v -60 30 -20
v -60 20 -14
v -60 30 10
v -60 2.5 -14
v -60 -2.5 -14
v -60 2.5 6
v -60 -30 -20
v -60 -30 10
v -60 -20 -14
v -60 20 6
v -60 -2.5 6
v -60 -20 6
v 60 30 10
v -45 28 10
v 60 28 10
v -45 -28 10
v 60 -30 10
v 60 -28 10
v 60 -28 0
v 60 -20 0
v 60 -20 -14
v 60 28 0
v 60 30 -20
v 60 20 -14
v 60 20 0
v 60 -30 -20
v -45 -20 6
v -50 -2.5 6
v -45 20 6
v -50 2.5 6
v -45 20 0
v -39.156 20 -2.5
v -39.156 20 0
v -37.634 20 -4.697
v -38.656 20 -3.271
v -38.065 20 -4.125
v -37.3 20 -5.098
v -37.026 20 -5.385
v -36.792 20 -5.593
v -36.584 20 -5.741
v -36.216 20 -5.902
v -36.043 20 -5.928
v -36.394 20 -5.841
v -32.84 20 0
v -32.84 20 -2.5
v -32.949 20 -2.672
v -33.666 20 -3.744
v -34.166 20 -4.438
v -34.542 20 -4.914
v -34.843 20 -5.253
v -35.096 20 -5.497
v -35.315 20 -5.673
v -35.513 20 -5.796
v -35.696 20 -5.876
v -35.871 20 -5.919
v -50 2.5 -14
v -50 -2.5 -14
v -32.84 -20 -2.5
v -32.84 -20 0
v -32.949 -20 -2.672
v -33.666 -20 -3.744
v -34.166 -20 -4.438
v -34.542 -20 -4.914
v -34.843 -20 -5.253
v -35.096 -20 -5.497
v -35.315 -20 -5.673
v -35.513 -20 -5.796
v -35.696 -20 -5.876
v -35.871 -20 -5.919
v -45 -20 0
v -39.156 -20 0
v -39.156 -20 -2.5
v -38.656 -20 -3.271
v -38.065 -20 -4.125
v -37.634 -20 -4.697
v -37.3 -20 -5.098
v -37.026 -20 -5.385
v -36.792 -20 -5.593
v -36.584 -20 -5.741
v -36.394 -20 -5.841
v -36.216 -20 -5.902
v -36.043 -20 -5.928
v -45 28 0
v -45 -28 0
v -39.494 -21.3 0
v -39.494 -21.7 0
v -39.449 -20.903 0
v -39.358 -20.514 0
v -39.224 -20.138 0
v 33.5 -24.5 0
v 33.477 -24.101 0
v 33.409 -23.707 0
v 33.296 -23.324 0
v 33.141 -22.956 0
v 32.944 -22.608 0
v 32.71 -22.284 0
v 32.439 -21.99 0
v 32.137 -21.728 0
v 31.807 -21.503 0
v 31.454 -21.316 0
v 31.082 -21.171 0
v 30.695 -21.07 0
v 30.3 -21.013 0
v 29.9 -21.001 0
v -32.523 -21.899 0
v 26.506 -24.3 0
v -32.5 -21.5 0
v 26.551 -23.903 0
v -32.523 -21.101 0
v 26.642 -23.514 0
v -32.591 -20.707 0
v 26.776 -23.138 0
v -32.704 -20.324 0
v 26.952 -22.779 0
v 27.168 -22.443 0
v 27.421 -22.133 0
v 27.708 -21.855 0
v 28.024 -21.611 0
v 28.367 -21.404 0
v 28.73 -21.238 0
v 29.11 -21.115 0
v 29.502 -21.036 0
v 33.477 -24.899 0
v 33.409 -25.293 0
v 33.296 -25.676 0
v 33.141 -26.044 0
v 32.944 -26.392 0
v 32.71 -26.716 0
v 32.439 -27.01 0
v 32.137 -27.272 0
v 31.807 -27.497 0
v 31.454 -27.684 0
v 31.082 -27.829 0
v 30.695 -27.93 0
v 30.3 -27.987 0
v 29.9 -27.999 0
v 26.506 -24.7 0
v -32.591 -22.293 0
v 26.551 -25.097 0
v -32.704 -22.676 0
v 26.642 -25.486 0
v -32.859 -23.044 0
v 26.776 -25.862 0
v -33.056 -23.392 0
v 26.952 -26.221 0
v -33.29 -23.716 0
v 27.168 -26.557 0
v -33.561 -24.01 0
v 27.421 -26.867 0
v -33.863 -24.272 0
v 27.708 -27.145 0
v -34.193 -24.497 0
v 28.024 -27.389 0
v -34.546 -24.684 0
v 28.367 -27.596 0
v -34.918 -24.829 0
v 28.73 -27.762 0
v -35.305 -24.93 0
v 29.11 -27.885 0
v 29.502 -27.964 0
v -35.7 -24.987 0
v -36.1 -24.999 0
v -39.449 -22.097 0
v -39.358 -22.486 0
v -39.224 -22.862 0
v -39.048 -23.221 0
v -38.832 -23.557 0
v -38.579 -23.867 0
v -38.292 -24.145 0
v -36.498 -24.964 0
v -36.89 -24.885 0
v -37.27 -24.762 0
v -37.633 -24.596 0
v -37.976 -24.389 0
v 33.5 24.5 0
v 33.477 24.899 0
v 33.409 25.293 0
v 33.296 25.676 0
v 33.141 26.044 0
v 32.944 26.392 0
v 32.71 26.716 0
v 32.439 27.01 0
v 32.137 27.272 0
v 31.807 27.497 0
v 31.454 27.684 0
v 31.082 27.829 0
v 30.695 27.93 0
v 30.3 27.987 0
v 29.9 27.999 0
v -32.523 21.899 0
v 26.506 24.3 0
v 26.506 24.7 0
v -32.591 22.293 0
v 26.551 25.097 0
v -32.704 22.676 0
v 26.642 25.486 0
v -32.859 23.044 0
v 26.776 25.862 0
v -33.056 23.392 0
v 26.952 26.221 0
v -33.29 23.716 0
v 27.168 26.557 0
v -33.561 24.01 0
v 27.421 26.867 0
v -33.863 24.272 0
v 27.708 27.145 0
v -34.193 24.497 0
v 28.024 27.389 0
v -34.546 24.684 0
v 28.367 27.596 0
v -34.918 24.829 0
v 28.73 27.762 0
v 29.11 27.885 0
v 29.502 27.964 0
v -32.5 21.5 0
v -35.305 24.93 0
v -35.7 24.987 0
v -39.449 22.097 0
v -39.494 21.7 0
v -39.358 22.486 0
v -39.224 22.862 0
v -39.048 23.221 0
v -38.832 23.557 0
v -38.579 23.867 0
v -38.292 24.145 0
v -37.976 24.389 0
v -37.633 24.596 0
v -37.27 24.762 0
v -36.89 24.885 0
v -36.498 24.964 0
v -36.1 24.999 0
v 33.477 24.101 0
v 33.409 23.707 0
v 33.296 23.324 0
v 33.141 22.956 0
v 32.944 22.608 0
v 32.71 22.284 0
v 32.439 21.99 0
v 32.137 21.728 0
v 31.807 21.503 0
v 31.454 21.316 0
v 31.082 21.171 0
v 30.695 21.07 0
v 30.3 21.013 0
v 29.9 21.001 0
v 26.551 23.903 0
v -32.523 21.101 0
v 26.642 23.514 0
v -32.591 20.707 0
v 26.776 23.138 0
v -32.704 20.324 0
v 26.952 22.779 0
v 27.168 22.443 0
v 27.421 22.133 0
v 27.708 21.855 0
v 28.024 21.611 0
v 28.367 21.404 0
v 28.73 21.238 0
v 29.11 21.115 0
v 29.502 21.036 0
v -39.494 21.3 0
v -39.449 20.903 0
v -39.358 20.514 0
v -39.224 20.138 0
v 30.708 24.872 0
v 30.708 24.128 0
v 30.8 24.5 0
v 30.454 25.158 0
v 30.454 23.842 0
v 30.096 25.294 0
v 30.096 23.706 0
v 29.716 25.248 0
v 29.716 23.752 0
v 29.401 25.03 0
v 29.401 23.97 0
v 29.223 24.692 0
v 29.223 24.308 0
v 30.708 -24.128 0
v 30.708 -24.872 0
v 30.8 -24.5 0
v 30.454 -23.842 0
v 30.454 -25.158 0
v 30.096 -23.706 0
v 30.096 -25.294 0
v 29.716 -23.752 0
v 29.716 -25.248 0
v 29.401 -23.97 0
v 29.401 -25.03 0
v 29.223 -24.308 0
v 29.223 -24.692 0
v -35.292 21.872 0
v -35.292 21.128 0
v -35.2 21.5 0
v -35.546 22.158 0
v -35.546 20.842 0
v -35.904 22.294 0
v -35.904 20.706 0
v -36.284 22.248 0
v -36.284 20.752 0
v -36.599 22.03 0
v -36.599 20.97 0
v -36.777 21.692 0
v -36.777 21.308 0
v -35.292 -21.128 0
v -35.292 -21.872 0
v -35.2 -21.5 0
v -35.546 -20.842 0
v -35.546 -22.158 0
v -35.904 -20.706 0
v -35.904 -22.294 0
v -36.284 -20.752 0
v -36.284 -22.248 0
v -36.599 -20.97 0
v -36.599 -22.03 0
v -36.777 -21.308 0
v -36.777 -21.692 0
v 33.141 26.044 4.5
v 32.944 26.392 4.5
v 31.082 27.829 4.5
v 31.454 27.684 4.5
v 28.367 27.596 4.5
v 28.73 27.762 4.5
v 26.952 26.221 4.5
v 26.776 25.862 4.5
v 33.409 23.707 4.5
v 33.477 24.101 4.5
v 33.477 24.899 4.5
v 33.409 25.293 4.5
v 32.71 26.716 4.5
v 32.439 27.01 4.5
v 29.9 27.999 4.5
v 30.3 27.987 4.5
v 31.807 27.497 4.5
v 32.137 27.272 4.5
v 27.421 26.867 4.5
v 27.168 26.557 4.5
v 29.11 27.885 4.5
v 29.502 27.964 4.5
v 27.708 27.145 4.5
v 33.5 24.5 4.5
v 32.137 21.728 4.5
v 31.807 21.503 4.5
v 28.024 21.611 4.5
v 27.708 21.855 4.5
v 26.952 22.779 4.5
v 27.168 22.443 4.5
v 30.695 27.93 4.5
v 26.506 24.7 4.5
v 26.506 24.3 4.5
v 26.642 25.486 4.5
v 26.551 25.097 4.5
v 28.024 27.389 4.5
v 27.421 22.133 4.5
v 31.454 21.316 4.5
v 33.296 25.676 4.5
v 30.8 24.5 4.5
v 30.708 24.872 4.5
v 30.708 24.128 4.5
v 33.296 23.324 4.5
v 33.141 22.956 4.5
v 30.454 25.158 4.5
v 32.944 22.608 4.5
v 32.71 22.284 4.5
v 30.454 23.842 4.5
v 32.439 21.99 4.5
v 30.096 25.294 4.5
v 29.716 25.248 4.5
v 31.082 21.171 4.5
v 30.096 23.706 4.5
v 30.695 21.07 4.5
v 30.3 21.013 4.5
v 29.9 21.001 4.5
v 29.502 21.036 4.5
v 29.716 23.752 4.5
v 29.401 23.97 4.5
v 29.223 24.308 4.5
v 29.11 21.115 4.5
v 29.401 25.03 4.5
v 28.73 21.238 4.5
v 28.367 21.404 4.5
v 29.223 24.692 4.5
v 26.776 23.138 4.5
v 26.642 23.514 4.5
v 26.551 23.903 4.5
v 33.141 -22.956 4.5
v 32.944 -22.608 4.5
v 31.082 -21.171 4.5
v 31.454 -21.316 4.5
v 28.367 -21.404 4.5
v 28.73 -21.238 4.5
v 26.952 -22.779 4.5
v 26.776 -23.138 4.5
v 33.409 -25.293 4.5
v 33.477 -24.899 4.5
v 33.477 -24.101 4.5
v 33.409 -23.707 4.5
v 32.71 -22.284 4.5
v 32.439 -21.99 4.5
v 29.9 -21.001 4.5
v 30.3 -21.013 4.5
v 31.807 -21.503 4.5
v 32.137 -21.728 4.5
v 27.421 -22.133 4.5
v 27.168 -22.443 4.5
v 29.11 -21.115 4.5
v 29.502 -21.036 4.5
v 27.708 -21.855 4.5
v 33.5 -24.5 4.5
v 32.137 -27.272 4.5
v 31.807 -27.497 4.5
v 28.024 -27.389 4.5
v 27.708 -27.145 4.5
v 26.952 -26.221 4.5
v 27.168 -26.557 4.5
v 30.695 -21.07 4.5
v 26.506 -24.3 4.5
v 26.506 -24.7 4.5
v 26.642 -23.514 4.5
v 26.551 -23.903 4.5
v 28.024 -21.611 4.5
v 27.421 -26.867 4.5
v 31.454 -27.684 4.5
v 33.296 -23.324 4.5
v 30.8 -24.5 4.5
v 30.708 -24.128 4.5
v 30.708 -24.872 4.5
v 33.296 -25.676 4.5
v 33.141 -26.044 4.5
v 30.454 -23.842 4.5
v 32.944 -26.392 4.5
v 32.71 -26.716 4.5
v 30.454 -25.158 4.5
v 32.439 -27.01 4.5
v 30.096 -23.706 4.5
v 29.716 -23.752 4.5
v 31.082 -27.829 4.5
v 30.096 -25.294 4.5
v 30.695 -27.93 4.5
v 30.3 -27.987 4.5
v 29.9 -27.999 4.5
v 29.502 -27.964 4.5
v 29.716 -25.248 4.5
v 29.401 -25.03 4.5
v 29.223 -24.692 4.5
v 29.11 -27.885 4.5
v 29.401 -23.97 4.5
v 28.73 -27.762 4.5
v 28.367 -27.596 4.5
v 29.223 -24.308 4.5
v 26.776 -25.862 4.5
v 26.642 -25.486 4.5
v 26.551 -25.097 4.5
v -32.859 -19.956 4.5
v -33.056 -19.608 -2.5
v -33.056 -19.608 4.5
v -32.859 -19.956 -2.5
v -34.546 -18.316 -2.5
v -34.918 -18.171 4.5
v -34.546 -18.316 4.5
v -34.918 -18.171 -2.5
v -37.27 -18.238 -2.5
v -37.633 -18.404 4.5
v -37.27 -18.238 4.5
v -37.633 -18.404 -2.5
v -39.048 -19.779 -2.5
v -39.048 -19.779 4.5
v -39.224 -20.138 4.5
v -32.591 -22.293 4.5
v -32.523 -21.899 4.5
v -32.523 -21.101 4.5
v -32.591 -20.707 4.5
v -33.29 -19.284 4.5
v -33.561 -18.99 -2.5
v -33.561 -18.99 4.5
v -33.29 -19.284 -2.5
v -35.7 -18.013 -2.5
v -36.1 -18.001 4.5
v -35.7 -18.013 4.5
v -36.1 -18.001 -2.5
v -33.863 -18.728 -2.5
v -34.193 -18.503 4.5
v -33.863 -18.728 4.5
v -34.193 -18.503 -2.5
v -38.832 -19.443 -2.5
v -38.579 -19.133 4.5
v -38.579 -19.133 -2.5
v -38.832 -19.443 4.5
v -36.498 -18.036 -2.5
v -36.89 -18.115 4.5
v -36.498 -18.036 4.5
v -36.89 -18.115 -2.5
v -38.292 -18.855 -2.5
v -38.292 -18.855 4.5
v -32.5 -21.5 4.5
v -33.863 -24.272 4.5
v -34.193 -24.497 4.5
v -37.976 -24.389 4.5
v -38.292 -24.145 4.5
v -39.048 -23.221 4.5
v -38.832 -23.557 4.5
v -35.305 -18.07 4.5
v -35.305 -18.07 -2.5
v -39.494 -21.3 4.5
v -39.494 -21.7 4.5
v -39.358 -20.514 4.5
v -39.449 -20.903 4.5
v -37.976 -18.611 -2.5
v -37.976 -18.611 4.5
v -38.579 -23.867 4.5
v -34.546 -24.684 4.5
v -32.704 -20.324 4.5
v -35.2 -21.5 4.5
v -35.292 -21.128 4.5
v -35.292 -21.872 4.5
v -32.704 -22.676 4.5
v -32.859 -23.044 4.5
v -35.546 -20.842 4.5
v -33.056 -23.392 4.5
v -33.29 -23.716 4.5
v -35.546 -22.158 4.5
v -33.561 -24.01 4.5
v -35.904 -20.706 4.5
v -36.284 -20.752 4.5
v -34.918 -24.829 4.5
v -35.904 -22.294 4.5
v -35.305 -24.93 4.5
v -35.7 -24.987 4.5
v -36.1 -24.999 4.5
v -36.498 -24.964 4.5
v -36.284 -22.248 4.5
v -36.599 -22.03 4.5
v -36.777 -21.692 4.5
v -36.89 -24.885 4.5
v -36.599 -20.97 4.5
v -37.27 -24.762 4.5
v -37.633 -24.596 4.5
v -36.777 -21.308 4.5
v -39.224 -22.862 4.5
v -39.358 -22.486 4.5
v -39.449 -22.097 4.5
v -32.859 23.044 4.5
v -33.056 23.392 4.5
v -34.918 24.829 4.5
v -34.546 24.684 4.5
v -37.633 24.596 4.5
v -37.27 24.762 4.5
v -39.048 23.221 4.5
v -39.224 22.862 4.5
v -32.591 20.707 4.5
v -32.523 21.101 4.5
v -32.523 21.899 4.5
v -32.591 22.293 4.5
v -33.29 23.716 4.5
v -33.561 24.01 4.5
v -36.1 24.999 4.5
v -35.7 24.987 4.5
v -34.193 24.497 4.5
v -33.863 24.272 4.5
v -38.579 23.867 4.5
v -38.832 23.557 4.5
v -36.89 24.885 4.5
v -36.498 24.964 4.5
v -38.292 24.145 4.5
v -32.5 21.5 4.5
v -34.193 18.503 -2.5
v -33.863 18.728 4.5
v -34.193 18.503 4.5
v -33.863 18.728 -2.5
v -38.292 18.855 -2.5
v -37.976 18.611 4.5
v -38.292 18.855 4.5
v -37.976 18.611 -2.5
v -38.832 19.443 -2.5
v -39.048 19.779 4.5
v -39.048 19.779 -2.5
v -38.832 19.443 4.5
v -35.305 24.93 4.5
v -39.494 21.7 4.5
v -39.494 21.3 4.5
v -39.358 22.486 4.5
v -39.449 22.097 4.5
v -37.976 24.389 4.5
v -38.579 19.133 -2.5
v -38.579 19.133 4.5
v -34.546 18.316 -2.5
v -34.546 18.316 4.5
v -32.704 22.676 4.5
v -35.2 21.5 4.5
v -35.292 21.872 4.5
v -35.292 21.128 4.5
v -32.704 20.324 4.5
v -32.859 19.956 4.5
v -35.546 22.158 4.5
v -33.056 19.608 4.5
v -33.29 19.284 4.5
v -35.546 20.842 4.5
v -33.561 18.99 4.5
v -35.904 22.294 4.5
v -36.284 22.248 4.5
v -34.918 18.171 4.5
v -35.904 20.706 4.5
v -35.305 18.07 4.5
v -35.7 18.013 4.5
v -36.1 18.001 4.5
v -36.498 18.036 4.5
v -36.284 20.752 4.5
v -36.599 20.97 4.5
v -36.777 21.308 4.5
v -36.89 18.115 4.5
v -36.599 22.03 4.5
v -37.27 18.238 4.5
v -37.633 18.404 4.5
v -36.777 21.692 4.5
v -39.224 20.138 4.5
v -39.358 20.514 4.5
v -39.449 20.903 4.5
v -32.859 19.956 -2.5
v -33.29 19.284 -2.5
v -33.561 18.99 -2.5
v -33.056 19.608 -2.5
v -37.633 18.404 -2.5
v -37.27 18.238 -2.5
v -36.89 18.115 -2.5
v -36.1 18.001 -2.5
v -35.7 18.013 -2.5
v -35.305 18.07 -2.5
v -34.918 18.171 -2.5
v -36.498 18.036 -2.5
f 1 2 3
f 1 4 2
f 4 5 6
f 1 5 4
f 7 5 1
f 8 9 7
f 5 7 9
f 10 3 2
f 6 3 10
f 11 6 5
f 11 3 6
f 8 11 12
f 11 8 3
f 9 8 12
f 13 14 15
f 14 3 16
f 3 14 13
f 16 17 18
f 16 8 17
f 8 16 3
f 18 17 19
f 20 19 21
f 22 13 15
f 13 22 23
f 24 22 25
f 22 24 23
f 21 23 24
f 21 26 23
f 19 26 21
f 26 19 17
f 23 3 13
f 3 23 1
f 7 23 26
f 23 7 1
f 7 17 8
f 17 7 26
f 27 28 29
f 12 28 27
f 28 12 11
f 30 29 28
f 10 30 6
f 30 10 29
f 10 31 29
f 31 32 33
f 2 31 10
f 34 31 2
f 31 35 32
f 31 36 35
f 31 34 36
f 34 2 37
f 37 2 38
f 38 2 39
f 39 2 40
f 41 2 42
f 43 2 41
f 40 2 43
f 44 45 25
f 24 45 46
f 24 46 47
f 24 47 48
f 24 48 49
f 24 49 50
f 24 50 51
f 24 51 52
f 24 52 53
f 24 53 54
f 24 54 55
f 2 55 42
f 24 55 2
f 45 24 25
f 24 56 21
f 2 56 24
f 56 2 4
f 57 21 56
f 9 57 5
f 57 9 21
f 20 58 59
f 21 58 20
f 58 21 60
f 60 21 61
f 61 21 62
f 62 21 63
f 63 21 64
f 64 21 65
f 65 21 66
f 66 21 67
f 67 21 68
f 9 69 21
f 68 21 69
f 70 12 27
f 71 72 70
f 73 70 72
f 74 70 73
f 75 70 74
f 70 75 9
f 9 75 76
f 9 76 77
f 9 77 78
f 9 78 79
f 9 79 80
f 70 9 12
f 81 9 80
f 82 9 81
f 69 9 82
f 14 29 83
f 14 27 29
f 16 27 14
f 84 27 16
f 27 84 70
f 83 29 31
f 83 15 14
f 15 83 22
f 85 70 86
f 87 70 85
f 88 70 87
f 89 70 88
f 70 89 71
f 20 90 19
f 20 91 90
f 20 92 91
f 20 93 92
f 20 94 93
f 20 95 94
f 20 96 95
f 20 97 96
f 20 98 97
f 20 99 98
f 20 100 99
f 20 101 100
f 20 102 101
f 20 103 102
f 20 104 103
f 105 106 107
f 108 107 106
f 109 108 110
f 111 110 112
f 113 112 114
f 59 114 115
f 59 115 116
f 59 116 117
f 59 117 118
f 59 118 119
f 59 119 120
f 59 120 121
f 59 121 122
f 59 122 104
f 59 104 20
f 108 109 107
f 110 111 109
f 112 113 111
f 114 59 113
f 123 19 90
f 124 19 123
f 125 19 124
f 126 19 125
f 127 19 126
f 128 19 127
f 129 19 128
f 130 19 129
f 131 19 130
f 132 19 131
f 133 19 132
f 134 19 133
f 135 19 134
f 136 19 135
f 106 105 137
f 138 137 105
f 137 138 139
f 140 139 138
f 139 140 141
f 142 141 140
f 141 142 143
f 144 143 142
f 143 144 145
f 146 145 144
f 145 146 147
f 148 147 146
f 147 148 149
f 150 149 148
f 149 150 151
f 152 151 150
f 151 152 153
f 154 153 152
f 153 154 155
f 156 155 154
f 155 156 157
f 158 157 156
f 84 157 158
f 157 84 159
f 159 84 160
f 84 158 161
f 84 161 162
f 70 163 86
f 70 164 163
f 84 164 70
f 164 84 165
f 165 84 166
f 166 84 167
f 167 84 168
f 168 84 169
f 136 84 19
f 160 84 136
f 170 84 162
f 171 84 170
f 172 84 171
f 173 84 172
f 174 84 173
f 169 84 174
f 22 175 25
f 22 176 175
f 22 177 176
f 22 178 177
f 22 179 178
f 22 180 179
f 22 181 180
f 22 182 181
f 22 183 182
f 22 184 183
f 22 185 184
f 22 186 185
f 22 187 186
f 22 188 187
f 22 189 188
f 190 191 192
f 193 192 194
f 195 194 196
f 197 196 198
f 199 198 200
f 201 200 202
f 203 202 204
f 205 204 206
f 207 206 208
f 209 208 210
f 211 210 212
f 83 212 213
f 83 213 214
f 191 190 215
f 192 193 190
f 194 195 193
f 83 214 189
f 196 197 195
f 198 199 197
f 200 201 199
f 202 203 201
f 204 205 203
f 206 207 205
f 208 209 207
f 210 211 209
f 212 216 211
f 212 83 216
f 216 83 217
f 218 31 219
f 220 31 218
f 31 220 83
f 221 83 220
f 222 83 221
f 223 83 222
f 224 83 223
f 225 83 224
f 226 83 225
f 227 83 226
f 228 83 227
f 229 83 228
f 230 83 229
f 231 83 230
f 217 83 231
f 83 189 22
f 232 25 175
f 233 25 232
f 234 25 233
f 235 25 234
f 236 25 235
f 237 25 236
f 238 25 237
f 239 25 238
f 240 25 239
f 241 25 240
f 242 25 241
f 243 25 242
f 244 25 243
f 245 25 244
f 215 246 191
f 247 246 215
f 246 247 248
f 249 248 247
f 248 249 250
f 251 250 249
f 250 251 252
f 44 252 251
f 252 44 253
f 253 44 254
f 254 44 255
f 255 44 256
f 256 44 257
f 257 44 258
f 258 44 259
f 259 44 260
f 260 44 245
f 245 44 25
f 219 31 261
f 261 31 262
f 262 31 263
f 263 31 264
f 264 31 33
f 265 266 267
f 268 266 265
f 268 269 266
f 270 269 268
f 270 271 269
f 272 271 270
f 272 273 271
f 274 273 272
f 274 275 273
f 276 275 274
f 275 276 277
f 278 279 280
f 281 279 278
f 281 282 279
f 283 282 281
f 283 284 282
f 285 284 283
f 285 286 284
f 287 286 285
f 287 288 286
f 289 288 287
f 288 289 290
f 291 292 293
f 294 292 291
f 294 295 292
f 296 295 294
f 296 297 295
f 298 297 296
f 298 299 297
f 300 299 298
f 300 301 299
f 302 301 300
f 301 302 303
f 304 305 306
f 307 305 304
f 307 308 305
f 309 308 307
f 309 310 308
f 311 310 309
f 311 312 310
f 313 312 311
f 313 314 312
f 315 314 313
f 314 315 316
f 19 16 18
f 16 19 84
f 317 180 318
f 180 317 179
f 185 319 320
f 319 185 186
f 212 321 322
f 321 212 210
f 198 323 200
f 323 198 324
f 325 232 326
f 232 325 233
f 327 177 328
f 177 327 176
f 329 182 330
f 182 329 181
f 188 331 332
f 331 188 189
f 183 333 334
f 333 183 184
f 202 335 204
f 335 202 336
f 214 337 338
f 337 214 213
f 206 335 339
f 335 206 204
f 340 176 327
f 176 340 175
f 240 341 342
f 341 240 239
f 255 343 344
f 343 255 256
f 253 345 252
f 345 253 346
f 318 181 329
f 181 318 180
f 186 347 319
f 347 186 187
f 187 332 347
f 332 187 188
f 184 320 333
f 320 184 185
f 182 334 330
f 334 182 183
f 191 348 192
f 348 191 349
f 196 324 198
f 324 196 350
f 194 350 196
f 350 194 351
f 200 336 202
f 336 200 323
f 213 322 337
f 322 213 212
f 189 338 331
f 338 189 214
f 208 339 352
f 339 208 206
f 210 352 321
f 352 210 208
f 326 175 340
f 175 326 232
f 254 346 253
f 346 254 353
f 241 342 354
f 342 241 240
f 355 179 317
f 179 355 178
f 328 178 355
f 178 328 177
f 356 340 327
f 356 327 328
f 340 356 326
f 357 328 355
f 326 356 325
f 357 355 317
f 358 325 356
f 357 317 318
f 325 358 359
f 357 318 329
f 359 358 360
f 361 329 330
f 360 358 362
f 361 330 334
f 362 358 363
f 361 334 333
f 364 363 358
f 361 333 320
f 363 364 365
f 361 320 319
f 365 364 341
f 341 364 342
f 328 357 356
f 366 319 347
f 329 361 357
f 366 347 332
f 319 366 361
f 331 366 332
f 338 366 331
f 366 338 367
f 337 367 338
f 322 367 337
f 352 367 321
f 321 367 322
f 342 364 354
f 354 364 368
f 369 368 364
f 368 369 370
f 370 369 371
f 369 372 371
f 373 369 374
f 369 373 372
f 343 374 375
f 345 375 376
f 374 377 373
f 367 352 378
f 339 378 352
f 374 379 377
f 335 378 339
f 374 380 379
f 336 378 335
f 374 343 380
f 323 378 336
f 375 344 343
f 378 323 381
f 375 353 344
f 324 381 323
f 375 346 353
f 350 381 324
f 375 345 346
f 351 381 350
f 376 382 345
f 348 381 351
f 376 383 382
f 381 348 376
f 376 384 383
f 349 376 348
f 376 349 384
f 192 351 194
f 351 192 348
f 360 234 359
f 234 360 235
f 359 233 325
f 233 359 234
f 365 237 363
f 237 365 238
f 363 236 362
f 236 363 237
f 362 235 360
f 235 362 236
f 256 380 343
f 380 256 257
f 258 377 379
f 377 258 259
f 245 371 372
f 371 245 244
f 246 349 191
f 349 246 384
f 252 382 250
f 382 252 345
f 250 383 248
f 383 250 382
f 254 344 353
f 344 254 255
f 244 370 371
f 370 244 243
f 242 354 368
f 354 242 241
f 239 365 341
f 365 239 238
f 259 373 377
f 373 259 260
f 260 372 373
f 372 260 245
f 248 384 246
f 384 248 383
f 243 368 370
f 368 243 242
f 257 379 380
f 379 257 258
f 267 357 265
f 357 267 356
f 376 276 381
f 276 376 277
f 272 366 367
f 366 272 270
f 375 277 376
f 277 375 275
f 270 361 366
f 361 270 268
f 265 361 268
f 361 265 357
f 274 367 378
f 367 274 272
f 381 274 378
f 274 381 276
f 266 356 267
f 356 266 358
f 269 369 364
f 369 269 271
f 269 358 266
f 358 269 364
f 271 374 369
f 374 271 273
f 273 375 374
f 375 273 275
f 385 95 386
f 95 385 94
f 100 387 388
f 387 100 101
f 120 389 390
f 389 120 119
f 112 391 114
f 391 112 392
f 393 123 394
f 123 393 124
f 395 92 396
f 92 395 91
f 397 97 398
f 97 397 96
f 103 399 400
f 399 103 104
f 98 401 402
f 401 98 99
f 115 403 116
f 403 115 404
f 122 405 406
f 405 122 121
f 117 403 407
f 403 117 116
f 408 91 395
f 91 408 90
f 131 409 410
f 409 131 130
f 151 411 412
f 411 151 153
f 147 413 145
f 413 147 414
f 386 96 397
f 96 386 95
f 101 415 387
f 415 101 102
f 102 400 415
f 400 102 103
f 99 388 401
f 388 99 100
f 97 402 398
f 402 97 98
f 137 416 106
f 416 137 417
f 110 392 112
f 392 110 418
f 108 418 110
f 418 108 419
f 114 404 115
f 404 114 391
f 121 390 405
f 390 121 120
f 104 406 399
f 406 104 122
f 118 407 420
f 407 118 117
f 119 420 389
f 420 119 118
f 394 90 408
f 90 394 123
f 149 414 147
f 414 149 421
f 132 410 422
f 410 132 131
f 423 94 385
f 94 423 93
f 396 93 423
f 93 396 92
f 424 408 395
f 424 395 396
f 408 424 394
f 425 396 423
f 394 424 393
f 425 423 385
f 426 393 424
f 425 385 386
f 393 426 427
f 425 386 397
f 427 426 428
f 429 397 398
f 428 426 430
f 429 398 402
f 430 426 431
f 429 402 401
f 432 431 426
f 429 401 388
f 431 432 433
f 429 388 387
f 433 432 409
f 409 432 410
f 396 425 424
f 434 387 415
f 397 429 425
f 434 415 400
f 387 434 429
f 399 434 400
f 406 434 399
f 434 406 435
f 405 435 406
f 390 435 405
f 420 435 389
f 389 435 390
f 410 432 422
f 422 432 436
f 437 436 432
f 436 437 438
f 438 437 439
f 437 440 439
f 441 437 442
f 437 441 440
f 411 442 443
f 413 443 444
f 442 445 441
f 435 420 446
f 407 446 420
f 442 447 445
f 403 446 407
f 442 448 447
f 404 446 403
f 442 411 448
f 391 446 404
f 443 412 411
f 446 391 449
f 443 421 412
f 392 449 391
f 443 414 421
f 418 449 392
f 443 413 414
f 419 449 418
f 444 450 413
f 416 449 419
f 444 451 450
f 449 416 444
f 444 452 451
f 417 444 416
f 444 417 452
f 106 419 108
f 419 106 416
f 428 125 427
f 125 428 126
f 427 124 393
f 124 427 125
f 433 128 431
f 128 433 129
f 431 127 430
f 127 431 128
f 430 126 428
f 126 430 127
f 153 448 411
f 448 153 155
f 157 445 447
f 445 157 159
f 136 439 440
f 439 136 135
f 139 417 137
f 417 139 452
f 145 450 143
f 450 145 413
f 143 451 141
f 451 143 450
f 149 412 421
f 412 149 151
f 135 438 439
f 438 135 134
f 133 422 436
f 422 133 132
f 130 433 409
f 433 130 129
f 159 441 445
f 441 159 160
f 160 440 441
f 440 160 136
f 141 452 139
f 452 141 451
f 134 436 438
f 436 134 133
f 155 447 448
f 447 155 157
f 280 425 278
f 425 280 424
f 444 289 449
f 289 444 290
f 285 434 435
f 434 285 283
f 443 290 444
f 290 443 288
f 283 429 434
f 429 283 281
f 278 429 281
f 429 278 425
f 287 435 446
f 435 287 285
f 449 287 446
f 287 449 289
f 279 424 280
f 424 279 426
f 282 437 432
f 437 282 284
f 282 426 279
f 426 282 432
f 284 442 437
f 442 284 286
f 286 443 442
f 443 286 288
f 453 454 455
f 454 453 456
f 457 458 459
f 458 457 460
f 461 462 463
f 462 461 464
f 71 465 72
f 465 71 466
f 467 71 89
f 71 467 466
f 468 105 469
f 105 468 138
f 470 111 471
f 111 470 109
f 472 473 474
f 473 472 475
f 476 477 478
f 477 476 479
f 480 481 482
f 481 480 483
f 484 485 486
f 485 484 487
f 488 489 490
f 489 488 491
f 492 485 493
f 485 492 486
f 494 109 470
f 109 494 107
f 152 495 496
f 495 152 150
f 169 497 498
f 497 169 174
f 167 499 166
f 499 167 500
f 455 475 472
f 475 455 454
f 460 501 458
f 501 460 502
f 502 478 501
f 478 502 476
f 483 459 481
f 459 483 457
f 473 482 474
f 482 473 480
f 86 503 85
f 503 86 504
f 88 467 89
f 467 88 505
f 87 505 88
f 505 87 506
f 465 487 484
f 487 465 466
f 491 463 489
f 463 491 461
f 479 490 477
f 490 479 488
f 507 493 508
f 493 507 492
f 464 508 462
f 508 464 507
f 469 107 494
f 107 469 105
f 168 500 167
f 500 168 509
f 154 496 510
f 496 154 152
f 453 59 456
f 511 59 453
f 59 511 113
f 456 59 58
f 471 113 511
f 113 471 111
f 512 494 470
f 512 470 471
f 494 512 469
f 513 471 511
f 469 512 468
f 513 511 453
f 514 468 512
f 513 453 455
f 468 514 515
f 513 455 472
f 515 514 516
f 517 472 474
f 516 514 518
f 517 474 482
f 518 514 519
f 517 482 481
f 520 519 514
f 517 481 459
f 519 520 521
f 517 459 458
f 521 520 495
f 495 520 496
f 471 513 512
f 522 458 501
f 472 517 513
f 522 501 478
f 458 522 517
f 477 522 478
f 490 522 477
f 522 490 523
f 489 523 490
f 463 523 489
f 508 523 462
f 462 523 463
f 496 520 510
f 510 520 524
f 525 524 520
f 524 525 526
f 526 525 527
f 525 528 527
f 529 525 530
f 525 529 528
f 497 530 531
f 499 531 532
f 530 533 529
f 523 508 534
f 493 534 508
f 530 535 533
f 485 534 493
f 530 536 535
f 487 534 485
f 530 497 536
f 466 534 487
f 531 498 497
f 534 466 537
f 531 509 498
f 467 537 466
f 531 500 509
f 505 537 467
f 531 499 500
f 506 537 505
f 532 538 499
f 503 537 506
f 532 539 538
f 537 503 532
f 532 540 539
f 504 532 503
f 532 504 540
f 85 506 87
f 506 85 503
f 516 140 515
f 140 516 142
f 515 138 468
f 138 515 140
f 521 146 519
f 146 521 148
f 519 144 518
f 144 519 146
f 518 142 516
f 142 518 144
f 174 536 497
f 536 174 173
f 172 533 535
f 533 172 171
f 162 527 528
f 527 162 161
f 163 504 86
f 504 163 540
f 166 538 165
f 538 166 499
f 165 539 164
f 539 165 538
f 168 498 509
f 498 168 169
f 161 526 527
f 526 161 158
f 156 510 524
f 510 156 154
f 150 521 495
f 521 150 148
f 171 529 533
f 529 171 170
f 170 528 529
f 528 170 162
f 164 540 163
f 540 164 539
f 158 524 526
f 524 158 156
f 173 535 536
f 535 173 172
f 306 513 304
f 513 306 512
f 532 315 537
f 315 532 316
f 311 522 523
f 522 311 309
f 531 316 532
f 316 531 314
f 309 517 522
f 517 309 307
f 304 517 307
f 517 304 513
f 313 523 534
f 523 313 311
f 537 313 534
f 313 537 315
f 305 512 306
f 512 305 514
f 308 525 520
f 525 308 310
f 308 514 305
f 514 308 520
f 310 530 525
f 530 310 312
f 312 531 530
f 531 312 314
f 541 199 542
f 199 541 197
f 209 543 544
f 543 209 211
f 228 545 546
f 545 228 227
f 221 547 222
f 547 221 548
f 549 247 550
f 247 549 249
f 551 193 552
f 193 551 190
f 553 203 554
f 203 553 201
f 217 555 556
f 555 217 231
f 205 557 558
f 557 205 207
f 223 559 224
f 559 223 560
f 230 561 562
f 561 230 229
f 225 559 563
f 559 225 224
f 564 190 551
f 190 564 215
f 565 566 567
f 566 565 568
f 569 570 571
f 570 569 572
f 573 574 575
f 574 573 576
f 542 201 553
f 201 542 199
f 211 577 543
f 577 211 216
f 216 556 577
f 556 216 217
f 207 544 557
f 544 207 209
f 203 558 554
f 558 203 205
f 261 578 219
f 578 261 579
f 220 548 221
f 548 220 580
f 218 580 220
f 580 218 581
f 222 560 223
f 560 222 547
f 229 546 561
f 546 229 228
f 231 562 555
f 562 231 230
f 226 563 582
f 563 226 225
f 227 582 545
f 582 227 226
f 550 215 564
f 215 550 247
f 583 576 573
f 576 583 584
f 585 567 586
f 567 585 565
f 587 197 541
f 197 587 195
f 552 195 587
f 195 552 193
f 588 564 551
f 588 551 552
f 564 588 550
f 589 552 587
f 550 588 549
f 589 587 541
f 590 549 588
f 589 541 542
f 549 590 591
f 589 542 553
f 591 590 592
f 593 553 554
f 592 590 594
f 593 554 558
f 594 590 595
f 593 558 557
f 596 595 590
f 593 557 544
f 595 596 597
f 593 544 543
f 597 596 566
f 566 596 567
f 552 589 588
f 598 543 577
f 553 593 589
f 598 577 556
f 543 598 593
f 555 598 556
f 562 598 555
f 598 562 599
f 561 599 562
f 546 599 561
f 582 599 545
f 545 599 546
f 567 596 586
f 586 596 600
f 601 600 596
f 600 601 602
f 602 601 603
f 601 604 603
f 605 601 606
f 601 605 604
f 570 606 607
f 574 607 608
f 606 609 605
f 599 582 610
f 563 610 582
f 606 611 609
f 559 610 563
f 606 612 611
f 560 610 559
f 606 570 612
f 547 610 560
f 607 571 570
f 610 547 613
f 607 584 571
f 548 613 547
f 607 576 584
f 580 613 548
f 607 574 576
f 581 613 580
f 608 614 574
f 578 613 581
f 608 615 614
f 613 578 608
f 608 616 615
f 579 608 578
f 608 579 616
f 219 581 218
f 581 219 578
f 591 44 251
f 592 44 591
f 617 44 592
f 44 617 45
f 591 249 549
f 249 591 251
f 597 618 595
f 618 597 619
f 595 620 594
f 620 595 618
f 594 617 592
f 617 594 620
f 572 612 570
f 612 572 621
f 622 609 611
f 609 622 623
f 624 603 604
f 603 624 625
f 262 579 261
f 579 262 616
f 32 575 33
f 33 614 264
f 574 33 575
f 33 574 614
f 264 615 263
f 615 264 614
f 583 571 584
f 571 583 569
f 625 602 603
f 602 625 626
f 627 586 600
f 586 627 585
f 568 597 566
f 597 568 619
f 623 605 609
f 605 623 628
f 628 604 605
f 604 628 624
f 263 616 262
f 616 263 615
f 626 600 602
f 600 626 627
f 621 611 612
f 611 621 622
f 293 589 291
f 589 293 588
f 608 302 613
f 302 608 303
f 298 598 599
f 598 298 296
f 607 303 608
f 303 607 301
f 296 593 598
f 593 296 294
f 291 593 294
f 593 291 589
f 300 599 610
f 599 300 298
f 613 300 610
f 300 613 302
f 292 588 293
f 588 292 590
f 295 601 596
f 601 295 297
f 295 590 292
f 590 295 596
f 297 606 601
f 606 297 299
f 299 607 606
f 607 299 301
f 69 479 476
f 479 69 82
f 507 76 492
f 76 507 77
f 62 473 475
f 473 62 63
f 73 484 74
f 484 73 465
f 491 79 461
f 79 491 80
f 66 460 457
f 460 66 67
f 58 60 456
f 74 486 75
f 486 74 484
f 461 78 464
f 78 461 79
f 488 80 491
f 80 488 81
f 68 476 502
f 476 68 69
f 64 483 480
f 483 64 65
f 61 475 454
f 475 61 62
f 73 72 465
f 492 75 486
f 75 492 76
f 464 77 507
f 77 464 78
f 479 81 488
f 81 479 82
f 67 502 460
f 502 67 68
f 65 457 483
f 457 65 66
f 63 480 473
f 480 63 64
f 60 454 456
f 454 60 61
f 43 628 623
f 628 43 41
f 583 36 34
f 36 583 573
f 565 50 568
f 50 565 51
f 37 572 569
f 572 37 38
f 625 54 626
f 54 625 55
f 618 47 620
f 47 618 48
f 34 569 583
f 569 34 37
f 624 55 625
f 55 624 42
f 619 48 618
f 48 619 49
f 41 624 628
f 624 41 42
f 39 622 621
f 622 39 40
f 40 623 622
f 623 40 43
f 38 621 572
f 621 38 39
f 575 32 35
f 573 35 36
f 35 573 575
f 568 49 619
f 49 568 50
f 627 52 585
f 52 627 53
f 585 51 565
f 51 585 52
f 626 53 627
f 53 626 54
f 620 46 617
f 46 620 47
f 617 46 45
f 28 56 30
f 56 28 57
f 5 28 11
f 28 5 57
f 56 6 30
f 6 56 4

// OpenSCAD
include <../lib/lib2.scad>


/*
yTube(3.5,1,5,    30,24.5,0);
yTube(3.5,1,5,    30,-24.5,0);
yTube(3.5,1,5,    -36,21.5,0);
yTube(3.5,1,5,    -36,-21.5,0);
yCube(65,3,1,   -2.5,23,-2);
yCube(65,3,1,   -2.5,-23,-2);
yCube(3,40,1,    -35,0,-2);
yCube(3,48,1,    30,0,-2);
//*/
blue_chassis(isLeft=false);

module blue_chassis(px=0,py=0,pz=0, rx=0,ry=0,rz=0, isLeft=false){
    translate([(px),(py),pz])
    rotate([rx,ry,rz]){
        difference(){
            yCube(120, 60,30, 0,0,-5);
            yCube(130,40,20,    0,0,-4); //battery S2
            yCube(120,56,50,    15,0,25); //blue
        }//difference
        //65x42/50
        yTube(3.5,0.8,7,    30,24.5,1);
        yTube(3.5,0.8,7,    30,-24.5,1);
        yTube(3.5,0.8,7,    -36,21.5,1);
        yTube(3.5,0.8,7,    -36,-21.5,1);
        yCone(3.5,6,    -36,-21.5,-5.5,  180,0,0);
        yCone(3.5,6,    -36,21.5,-5.5,  180,0,0);
    }//transform
    yCube(10,5,30,  -55,0,-5);
}//module  


        
